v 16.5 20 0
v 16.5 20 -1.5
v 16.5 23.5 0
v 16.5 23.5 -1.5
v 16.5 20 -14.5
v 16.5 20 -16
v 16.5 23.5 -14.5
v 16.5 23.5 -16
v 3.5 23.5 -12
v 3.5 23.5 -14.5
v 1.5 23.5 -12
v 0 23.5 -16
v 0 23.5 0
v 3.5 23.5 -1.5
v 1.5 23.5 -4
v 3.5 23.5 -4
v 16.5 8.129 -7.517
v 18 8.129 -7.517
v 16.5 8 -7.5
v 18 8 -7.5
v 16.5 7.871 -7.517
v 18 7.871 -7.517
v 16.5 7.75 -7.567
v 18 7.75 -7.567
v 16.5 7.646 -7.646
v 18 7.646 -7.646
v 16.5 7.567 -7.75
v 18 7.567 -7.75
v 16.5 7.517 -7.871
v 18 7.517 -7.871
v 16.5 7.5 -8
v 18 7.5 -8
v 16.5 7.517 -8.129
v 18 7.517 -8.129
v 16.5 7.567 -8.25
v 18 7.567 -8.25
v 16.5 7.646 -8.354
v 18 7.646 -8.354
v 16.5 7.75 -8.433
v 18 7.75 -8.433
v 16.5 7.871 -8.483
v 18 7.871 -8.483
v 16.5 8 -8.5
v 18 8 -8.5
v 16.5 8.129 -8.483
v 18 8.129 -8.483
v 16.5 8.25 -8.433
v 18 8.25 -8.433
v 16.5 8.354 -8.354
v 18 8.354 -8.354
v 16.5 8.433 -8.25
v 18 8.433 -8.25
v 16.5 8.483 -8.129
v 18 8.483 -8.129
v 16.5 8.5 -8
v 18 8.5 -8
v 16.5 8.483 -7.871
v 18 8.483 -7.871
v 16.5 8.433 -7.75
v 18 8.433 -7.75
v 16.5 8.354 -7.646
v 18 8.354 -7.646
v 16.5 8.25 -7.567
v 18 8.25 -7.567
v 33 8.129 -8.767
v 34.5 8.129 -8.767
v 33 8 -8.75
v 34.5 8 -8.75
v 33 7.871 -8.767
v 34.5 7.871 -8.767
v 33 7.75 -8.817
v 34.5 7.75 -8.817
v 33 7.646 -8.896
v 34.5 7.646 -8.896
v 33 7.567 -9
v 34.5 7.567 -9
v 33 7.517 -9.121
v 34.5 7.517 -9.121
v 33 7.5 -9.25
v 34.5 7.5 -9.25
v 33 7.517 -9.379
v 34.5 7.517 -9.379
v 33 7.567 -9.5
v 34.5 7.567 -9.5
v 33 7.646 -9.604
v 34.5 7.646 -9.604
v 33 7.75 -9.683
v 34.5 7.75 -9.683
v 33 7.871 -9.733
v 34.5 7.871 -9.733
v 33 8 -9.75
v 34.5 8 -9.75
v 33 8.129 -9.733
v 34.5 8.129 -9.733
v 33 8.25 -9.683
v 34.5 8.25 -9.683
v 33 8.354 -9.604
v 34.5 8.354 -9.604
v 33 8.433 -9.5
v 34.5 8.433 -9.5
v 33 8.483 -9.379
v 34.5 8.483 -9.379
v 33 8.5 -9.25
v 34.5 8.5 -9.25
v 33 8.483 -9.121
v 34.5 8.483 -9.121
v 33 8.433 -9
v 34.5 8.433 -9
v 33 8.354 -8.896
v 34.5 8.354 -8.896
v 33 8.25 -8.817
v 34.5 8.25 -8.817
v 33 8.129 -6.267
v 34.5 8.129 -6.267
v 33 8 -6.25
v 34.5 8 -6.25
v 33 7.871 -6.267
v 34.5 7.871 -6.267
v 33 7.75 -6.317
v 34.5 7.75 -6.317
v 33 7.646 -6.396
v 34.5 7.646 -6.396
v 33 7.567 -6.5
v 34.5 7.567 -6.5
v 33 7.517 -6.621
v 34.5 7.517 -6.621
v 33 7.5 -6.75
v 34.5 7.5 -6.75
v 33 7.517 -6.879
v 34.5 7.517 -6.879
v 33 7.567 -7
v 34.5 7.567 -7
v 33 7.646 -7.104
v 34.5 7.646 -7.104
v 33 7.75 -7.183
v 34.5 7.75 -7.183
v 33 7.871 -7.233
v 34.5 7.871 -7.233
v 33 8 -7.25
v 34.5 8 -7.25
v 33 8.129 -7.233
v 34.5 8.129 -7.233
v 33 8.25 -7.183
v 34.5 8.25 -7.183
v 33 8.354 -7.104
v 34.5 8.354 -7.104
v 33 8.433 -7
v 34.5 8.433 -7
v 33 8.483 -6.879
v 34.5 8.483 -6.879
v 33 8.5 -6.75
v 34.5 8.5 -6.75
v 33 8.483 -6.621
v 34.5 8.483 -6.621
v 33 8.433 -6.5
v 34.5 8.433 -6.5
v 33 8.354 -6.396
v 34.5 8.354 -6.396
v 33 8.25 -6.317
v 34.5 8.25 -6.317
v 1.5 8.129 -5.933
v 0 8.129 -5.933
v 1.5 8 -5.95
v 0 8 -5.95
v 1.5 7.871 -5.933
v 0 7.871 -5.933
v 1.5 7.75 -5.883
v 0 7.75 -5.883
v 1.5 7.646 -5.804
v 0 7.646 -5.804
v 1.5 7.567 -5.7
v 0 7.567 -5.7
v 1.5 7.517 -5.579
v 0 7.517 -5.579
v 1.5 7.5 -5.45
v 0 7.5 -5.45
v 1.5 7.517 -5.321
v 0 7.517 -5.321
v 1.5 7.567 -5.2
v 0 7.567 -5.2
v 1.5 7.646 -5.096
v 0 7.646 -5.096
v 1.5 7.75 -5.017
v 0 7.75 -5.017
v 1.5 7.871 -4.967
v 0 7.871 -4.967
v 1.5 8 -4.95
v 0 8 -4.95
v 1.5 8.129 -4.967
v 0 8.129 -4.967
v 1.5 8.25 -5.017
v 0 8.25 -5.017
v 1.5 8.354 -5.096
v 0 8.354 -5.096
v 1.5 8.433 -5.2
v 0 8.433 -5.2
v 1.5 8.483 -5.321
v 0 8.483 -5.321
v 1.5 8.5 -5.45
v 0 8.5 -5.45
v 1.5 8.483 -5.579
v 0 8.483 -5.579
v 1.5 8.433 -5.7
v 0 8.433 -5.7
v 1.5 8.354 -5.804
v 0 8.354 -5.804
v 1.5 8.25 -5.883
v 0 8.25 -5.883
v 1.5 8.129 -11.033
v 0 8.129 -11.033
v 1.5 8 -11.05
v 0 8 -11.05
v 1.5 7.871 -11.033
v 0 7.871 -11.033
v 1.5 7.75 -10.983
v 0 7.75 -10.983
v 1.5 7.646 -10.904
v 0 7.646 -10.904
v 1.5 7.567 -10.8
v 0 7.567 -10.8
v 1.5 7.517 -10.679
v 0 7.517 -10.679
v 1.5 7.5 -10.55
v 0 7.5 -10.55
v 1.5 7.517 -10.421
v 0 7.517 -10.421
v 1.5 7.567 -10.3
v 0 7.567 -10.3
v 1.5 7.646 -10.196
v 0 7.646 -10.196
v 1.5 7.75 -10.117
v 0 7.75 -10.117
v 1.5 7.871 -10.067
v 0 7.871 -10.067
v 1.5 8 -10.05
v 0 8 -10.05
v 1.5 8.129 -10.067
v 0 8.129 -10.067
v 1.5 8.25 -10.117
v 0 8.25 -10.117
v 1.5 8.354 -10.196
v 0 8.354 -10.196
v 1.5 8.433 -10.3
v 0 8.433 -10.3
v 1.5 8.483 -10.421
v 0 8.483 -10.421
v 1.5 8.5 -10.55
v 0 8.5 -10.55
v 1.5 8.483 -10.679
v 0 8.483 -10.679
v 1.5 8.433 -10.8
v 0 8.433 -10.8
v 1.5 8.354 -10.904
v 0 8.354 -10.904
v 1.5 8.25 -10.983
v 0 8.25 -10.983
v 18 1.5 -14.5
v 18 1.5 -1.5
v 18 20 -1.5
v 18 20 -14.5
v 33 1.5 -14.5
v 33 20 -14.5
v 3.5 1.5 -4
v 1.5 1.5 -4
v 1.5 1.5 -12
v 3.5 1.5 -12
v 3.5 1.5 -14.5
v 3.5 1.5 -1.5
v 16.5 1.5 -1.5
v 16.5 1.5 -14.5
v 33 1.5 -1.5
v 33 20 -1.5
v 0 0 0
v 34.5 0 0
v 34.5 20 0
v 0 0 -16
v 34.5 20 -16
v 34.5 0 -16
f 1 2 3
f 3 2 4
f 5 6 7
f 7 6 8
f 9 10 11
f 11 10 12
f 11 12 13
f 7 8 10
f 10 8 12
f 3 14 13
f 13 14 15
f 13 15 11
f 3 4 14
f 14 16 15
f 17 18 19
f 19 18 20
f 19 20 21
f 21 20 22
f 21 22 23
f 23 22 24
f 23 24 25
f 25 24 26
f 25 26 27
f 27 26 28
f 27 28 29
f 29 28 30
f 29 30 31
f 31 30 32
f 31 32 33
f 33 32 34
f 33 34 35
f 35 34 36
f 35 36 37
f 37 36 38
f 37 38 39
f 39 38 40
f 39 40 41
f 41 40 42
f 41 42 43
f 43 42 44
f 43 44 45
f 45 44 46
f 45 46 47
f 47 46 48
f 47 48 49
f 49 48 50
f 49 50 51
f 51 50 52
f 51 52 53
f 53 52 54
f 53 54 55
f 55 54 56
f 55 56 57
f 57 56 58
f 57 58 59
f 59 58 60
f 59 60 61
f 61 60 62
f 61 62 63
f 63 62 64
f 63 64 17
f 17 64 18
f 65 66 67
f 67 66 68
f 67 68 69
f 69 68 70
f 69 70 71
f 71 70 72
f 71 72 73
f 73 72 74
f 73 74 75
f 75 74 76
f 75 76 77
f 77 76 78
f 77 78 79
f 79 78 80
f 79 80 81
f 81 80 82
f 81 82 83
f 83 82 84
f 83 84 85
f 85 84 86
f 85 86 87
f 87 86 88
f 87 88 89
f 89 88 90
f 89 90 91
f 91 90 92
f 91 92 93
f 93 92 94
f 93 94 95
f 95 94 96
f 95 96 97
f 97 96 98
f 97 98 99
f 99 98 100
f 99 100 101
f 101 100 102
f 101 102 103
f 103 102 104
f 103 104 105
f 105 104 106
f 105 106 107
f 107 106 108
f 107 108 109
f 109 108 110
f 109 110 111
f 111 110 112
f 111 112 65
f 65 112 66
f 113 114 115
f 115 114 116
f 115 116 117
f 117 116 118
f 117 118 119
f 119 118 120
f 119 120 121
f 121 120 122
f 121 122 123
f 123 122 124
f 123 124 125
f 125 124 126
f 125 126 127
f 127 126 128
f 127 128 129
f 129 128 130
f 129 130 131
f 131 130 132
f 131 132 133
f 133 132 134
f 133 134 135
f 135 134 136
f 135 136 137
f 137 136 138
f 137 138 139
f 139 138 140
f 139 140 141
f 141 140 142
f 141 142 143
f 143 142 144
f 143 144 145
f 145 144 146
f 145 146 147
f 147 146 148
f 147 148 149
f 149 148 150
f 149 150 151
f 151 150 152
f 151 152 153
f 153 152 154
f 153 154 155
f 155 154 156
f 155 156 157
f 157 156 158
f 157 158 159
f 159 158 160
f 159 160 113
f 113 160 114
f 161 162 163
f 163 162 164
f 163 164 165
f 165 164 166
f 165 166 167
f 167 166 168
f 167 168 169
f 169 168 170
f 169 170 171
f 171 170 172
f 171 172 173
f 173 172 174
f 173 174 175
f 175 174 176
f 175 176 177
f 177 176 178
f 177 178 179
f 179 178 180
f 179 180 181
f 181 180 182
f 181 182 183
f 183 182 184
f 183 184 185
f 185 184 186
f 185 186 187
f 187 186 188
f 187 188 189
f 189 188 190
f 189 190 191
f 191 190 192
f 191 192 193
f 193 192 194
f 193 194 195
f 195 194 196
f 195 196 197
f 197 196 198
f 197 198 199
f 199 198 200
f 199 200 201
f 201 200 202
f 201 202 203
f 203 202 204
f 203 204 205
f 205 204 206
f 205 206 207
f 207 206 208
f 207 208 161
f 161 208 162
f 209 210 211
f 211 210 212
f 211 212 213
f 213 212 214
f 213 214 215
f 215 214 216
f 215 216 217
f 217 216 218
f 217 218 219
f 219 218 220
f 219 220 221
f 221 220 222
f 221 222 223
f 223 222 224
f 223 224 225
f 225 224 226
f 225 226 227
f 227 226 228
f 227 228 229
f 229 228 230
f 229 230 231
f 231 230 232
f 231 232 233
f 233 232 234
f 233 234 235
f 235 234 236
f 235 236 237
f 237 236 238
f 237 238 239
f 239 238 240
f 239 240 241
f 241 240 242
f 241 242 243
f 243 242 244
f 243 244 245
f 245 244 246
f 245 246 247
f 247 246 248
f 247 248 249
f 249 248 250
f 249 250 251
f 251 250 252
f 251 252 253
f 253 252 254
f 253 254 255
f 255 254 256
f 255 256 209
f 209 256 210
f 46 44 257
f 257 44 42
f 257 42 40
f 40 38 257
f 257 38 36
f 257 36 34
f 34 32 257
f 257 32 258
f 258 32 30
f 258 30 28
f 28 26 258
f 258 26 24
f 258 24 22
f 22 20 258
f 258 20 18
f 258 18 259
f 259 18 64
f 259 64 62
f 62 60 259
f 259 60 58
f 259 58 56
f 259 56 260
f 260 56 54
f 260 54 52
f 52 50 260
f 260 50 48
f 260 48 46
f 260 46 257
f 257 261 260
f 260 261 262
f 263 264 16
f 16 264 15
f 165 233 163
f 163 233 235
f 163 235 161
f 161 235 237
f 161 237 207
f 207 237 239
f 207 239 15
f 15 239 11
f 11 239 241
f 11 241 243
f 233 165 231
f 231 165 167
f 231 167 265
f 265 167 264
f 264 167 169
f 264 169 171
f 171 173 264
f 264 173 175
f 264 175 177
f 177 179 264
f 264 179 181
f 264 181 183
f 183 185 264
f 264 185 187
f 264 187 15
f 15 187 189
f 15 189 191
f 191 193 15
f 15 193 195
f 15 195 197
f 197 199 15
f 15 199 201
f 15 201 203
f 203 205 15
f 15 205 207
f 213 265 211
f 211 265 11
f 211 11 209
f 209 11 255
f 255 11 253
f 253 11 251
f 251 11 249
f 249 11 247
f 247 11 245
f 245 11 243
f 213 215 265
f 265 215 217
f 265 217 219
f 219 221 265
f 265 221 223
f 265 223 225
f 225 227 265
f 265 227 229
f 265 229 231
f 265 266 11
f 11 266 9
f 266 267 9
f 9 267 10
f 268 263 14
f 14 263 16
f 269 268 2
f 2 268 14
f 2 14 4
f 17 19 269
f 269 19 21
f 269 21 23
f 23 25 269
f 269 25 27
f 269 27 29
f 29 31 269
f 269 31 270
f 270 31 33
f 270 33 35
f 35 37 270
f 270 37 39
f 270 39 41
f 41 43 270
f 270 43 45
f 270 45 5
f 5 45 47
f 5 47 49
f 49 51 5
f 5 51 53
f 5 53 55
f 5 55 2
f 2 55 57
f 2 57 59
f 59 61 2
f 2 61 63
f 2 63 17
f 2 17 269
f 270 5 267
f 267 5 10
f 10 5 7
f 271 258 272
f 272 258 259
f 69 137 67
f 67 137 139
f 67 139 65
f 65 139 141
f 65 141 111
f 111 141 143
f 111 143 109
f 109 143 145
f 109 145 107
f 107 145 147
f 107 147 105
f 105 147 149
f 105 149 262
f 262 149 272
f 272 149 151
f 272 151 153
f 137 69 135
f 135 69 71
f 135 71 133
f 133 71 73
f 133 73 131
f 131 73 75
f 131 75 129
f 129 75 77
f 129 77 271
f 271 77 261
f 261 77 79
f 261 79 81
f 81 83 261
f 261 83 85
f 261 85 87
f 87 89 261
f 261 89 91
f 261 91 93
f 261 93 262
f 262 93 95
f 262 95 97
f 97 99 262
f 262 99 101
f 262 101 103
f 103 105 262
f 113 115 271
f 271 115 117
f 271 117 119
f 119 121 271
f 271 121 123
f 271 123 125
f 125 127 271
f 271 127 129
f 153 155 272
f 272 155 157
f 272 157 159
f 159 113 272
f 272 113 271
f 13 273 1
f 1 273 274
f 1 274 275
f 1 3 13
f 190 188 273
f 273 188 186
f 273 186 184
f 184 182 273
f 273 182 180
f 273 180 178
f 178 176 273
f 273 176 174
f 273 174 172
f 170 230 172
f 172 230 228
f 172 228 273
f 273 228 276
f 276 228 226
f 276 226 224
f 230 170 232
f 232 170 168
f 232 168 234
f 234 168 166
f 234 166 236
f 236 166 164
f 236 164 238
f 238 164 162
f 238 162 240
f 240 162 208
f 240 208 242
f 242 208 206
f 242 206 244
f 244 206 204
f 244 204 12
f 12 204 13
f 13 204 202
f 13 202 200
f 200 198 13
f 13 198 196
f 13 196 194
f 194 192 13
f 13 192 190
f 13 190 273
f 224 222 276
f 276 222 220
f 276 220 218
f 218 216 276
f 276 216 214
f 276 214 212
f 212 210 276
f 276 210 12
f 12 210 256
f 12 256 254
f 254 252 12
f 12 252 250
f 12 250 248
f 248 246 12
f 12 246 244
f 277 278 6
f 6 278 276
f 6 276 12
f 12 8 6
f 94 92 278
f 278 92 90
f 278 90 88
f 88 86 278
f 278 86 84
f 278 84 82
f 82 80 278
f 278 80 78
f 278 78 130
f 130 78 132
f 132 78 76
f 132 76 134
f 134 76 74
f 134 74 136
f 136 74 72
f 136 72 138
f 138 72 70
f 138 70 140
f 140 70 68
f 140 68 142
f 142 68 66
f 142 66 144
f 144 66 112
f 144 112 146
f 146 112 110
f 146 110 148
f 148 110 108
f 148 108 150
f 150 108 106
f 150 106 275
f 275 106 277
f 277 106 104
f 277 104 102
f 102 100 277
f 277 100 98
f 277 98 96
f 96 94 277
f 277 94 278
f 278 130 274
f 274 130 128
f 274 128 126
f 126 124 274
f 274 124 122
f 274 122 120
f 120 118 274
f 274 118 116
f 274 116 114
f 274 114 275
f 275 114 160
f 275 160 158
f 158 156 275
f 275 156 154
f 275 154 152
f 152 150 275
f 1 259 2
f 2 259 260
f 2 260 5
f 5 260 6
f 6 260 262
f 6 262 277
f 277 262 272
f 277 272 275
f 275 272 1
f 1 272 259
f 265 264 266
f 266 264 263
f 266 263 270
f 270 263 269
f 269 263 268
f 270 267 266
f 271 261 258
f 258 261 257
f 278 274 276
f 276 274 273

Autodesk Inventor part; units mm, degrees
ref_plane "YZ Plane" through (0, 0, 0) normal (1, 0, 0) x (0, 1, 0)
ref_plane "XZ Plane" through (0, 0, 0) normal (0, 1, 0) x (-1, 0, 0)
ref_plane "XY Plane" through (0, 0, 0) normal (0, 0, 1) x (1, 0, 0)
sketch "Esboço1" plane through (0, 0, 0) normal (0, 1, 0) x (-1, 0, 0)
  line L0 (0, 0) -> (0, -16)
  line L1 (0, -16) -> (-34.5, -16)
  line L2 (-34.5, -16) -> (-34.5, 0)
  line L3 (-34.5, 0) -> (0, 0)
  line L4 (-3.5, -14.5) -> (-16.5, -14.5)
  line L5 (-16.5, -14.5) -> (-16.5, -1.5)
  line L6 (-16.5, -1.5) -> (-3.5, -1.5)
  line L7 (-18, -14.5) -> (-33, -14.5)
  line L8 (-33, -14.5) -> (-33, -1.5)
  line L9 (-33, -1.5) -> (-18, -1.5)
  line L10 (-18, -1.5) -> (-18, -14.5)
  line L11 (-3.5, -14.5) -> (-3.5, -12)
  line L12 (-3.5, -12) -> (-1.5, -12)
  line L13 (-1.5, -12) -> (-1.5, -4)
  line L14 (-1.5, -4) -> (-3.5, -4)
  line L15 (-3.5, -4) -> (-3.5, -1.5)
  point P0 (-34.5, -8)
  dimension "d0" = 13
  dimension "d1" = 13
  dimension "d2" = 15
  dimension "d3" = 13
  dimension "d4" = 8
  dimension "d5" = 2.5
  dimension "d6" = 1.5
  dimension "d7" = 1.5
  dimension "d8" = 2
  dimension "d9" = 1.5
  dimension "d10" = 1.5
  dimension "d11" = 1.5
extrude "Extrusão1" add sketch "Esboço1" along normal blind 1.5 contours L4 L5 L6 L15 L14 L13 L12 L11 | L7 L8 L9 L10
extrude "Extrusão2" add sketch "Esboço1" along normal blind 20
sketch "Esboço2" plane through (0, 0, -16) normal (-1, 0, 0) x (0, 0, 1)
  line L0 (12, 20) -> (4, 20) projected
  line L1 (8, 20) -> (8, 0)
  line L2 (0, 0) -> (0, 20) projected
  circle A0 centre (5.45, 8) radius 0.5
  circle A1 centre (10.55, 8) radius 0.5
  line L3 (0, 0) -> (16, 0) projected
  dimension "d23" = 8
extrude "Extrusão3" cut sketch "Esboço2" against normal blind 10
sketch "Esboço3" plane through (34.5, 0, 0) normal (1, 0, 0) x (0, 0, -1)
  line L0 (0, 20) -> (16, 20) projected
  line L1 (8, 20) -> (8, 0)
  circle A0 centre (6.75, 8) radius 0.5
  circle A1 centre (9.25, 8) radius 0.5
  line L2 (0, 0) -> (16, 0) projected
  line L3 (11, 16) -> (11, 8)
  line L4 (11, 8) -> (5, 8)
  line L5 (5, 8) -> (5, 16)
  circle A2 centre (5, 12) radius 1.5
  circle A3 centre (11, 12) radius 1.5
  dimension "d26" = 1
  dimension "d27" = 1
  dimension "d28" = 8
  dimension "d29" = 8
  dimension "d30" = 1.25
  dimension "d31" = 1.25
  dimension "d78" = 3
  dimension "d79" = 3
  dimension "d80" = 3
  dimension "d81" = 3
extrude "Extrusão4" cut sketch "Esboço3" against normal blind 10 contours L4 A0 | A1 L4 | L4 A1 | A0 L4
sketch "Esboço4" plane through (18, 1.5, -14.5) normal (1, 0, 0) x (0, 0, -1)
  line L0 (-14.5, -1.5) -> (1.5, -1.5) projected
  line L1 (-6.5, -1.5) -> (-6.5, 18.5)
  line L2 (0, 18.5) -> (-13, 18.5) projected
  circle A0 centre (-6.5, 6.5) radius 0.5
  line L3 (0, 0) -> (-13, 0) projected
  dimension "d40" = 1
  dimension "d42" = 6.5
extrude "Extrusão5" cut sketch "Esboço4" against normal blind 10
sketch "Esboço6" plane through (0, 20, 0) normal (0, 1, 0) x (1, 0, 0)
  line L0 (0, 0) -> (34.5, 0) projected
  line L1 (0, 0) -> (16.5, 0)
  line L2 (0, 0) -> (16.5, 0) construction
  line L3 (16.5, 14.5) -> (16.5, 1.5) projected
  line L4 (16.5, 0) -> (16.5, 1.5)
  line L5 (16.5, 1.5) -> (3.5, 1.5) projected
  line L6 (16.5, 1.5) -> (3.5, 1.5)
  line L7 (3.5, 1.5) -> (3.5, 4) projected
  line L8 (3.5, 1.5) -> (3.5, 4)
  line L9 (3.5, 4) -> (1.5, 4) projected
  line L10 (3.5, 4) -> (1.5, 4)
  line L11 (1.5, 4) -> (1.5, 12)
  line L12 (1.5, 12) -> (3.5, 12) projected
  line L13 (1.5, 12) -> (3.5, 12)
  line L14 (3.5, 12) -> (3.5, 14.5) projected
  line L15 (3.5, 12) -> (3.5, 14.5)
  line L16 (3.5, 14.5) -> (16.5, 14.5) projected
  line L17 (3.5, 14.5) -> (16.5, 14.5)
  line L18 (16.5, 14.5) -> (16.5, 16)
  line L19 (34.5, 16) -> (0, 16) projected
  line L20 (0, 16) -> (0, 0) projected
  line L21 (0, 16.0004) -> (0, 0)
  dimension "d66" = 16.5
  dimension "d67" = 0
extrude "Extrusão8" add sketch "Esboço6" along normal blind 3.5 contours L20 L19 L18 L16 L14 L12 L11 L9 L7 L5 L4 L0
properties part number "Base_3DPrint"
